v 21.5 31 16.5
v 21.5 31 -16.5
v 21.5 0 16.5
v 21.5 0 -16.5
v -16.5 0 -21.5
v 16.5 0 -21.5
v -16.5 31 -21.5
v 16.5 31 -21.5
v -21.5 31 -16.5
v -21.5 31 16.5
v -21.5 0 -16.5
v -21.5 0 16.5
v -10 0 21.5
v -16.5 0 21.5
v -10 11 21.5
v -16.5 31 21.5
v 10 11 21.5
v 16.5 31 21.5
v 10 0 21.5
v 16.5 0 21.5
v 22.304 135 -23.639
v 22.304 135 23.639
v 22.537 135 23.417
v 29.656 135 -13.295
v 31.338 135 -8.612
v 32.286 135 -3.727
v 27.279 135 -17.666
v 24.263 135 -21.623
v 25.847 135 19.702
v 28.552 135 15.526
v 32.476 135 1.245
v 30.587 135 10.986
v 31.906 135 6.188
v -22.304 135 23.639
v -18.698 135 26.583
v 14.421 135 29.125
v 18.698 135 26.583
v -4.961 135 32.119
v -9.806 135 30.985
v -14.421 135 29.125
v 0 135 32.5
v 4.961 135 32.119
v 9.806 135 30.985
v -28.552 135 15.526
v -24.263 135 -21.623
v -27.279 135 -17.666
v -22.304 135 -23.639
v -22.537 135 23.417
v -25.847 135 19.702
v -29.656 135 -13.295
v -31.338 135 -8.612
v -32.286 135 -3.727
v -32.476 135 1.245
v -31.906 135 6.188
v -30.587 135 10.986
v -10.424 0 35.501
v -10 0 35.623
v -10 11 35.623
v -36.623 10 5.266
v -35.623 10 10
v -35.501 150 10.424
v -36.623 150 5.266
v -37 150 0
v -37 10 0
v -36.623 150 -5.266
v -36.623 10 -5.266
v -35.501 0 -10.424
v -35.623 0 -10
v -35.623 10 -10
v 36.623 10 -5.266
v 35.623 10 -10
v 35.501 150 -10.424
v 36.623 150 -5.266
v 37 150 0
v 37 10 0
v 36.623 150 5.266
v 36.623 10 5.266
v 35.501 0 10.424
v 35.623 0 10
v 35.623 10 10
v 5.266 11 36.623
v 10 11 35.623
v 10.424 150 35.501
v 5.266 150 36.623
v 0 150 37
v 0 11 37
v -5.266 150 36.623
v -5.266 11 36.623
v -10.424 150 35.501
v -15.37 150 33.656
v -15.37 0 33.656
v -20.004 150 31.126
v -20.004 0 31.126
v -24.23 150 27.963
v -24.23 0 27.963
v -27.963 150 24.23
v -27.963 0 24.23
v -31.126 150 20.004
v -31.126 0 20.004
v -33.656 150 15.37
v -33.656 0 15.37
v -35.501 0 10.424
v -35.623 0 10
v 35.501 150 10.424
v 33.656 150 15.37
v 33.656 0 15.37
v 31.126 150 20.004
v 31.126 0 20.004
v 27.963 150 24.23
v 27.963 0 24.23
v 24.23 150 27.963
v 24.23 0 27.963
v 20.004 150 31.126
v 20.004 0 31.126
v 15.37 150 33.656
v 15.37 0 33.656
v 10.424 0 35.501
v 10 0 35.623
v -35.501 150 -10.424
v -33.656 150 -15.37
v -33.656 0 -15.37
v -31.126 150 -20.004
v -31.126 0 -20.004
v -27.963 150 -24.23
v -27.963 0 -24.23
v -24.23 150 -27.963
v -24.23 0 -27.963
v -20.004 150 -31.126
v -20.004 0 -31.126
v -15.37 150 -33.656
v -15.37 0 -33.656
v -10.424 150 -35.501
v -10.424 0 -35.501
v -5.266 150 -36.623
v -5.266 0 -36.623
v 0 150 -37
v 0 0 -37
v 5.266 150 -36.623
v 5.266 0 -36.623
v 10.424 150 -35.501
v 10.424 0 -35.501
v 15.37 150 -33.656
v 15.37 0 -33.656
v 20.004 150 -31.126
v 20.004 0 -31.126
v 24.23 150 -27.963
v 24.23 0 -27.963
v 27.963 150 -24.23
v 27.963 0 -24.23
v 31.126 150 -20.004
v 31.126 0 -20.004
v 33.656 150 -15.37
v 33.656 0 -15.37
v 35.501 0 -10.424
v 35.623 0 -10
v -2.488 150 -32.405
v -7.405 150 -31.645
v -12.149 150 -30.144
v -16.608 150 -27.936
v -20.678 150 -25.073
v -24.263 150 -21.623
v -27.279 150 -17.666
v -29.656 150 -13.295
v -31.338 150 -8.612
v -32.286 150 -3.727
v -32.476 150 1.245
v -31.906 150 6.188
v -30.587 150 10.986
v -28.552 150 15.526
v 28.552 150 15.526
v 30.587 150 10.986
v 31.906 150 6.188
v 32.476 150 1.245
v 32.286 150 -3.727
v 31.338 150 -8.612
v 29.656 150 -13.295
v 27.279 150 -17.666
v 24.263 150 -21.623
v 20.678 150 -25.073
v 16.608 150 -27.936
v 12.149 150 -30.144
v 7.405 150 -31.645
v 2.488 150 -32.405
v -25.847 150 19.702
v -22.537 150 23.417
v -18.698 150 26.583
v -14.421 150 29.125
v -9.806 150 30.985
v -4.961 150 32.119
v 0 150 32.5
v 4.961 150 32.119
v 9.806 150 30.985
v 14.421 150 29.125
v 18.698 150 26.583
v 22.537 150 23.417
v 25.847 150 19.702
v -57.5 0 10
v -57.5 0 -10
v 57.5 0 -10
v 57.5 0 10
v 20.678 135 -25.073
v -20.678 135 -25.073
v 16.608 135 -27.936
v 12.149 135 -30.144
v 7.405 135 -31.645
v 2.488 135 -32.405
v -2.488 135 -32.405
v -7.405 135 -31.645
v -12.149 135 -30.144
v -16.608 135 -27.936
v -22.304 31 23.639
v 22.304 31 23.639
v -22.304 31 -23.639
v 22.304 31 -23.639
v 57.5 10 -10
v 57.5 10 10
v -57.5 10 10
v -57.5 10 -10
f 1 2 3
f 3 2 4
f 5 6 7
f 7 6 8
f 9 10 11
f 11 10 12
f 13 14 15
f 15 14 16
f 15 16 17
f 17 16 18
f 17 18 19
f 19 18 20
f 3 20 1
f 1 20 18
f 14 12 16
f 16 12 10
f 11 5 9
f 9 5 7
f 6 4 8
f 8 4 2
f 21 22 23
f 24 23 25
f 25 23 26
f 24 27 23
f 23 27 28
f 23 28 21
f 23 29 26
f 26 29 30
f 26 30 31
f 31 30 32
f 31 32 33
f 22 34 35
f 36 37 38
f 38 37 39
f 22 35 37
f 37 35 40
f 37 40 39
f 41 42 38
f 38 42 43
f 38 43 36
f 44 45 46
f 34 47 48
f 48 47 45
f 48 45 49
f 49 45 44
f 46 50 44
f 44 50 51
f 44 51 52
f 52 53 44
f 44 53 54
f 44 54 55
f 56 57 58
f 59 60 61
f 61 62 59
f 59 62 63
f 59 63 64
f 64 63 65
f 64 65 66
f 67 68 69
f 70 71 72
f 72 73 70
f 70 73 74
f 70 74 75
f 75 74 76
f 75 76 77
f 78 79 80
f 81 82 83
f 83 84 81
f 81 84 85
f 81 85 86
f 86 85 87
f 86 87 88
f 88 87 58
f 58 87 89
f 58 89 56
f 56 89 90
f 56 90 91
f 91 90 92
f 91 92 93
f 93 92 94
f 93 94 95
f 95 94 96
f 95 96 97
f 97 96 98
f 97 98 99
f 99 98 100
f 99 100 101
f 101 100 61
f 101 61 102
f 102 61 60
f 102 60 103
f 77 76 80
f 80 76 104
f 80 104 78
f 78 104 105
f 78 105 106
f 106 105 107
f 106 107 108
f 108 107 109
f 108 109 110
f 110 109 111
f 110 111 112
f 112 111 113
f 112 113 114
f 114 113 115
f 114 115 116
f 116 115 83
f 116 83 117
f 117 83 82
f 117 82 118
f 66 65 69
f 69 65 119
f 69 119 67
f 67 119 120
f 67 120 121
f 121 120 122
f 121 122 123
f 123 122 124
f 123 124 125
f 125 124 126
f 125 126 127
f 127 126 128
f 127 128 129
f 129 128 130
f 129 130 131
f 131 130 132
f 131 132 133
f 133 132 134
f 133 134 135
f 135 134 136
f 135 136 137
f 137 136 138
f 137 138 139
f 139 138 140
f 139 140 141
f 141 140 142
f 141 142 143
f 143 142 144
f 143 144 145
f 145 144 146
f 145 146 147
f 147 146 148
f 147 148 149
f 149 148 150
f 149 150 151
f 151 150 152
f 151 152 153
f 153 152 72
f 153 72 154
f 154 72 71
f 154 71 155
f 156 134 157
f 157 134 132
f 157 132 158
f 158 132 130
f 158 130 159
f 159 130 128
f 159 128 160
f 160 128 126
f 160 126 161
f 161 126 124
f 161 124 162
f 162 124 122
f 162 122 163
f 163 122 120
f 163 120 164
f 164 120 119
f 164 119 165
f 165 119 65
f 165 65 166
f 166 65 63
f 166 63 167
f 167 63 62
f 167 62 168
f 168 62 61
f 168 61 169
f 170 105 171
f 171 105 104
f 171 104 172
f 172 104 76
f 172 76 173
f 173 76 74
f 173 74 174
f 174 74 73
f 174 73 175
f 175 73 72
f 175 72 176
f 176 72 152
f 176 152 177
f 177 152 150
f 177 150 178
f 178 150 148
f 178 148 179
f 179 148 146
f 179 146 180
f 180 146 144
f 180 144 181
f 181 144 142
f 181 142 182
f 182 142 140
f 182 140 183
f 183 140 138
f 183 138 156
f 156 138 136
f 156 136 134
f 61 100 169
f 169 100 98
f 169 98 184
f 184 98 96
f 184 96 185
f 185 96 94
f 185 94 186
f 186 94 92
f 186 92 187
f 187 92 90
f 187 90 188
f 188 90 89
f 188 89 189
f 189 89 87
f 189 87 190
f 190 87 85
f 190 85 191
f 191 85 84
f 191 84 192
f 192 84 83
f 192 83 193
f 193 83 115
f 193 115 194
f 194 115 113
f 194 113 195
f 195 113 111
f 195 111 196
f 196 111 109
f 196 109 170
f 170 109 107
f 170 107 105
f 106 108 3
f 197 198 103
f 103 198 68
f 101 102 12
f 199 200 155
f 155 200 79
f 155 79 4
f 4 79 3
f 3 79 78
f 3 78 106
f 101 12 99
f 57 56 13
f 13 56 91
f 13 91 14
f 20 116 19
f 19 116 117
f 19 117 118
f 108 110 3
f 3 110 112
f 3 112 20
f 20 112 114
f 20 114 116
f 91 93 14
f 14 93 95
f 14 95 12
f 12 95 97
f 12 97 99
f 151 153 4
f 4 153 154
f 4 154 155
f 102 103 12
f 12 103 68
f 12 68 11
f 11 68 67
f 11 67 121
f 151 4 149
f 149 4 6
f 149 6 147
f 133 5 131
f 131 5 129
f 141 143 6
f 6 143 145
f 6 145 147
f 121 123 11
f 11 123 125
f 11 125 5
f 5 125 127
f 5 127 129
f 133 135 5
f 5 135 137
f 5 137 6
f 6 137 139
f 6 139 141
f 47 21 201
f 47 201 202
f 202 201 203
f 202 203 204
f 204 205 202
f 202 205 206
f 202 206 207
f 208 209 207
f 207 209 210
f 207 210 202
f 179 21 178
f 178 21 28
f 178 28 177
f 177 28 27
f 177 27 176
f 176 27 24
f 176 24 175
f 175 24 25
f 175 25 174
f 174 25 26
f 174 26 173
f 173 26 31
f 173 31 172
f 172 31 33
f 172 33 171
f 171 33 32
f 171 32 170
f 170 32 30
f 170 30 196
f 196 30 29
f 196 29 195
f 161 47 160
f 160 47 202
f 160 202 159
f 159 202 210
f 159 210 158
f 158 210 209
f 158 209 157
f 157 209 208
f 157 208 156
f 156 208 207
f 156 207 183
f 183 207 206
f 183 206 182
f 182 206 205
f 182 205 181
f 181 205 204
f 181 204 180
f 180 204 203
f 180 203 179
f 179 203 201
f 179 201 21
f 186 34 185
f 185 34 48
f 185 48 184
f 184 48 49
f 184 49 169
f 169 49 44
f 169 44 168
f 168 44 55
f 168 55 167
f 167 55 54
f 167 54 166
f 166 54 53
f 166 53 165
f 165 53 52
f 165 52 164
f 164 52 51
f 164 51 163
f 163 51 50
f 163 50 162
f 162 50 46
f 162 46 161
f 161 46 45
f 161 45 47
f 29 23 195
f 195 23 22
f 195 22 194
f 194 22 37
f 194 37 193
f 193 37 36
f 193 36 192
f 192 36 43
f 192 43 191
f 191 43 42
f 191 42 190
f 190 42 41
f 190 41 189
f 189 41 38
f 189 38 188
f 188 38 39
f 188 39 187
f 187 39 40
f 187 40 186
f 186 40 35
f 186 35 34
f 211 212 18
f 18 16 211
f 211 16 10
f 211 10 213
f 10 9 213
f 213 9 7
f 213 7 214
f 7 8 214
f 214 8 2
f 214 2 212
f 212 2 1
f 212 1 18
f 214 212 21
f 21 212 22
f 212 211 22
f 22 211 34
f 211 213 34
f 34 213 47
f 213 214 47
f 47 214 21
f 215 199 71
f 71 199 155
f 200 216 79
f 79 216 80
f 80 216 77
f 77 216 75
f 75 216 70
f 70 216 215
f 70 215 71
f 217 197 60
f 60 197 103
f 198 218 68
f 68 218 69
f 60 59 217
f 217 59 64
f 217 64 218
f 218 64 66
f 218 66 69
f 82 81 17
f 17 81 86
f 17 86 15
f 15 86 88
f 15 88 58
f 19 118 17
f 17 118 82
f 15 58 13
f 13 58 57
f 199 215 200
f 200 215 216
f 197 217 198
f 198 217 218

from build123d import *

# Parameters (mm, degrees)
SKETCH1_R           = 37
BOSS_EXTRUDE1_DEPTH = 150
SKETCH2_W           = 23
SKETCH2_H           = 23
CUT_EXTRUDE1_DEPTH  = 150
SKETCH3_W           = 43
SKETCH3_H           = 43
CUT_EXTRUDE2_DEPTH  = 36
CHAMFER1_SIZE       = 5
SKETCH5_R           = 32.5
CUT_EXTRUDE3_DEPTH  = 15
SKETCH11_W          = 44.607289856
SKETCH11_H          = 47.277792796
CUT_EXTRUDE7_DEPTH  = 104
SKETCH12_W          = 26
SKETCH12_H          = 20
BOSS_EXTRUDE2_DEPTH = 10
SKETCH13_W          = 20
SKETCH13_H          = 31
CUT_EXTRUDE8_DEPTH  = 11
SKETCH14_W          = 20
SKETCH14_H          = 10
BOSS_EXTRUDE3_DEPTH = 10
SKETCH15_W          = 20
SKETCH15_H          = 10
BOSS_EXTRUDE4_DEPTH = 10


with BuildPart() as part:
    # Sketch1 → Boss-Extrude1 (new body)
    with BuildSketch(Plane(origin=(0, 0, 0), x_dir=(1, 0, 0), z_dir=(0, 1, 0))):
        with Locations(Location((0, 0, 0), (0, 0, 270))):
            Circle(SKETCH1_R)
    extrude(amount=BOSS_EXTRUDE1_DEPTH)

    # Sketch2 → Cut-Extrude1 (cut)
    with BuildSketch(Plane(origin=(0, 150, 0), x_dir=(1, 0, 0), z_dir=(0, 1, 0))):
        Rectangle(SKETCH2_W, SKETCH2_H)
    extrude(amount=-CUT_EXTRUDE1_DEPTH, mode=Mode.SUBTRACT)

    # Sketch3 → Cut-Extrude2 (cut)
    with BuildSketch(Plane.XZ):
        Rectangle(SKETCH3_W, SKETCH3_H)
    extrude(amount=-CUT_EXTRUDE2_DEPTH, mode=Mode.SUBTRACT)

    # Chamfer1
    chamfer1_edges = [part.edges().sort_by_distance(p)[0] for p in [
        (21.5, 18, 21.5),
        (21.5, 18, -21.5),
        (-21.5, 18, -21.5),
        (-21.5, 18, 21.5),
    ]]
    chamfer(chamfer1_edges, length=CHAMFER1_SIZE)

    # Sketch5 → Cut-Extrude3 (cut)
    with BuildSketch(Plane(origin=(0, 150, 0), x_dir=(1, 0, 0), z_dir=(0, 1, 0))):
        with Locations(Location((0, 0, 0), (0, 0, 270))):
            Circle(SKETCH5_R)
    extrude(amount=-CUT_EXTRUDE3_DEPTH, mode=Mode.SUBTRACT)

    # Sketch11 → Cut-Extrude7 (cut)
    with BuildSketch(Plane(origin=(0, 135, 0), x_dir=(1, 0, 0), z_dir=(0, 1, 0))):
        Rectangle(SKETCH11_W, SKETCH11_H)
    extrude(amount=-CUT_EXTRUDE7_DEPTH, mode=Mode.SUBTRACT)

    # Sketch12 → Boss-Extrude2 (add)
    with BuildSketch(Plane.XZ):
        with Locations((-34.5, 0)):
            Rectangle(SKETCH12_W, SKETCH12_H)
        with Locations((34.5, 0)):
            Rectangle(SKETCH12_W, SKETCH12_H)
    extrude(amount=-BOSS_EXTRUDE2_DEPTH)

    # Sketch13 → Cut-Extrude8 (cut)
    with BuildSketch(Plane.XZ):
        with Locations((0, 37)):
            Rectangle(SKETCH13_W, SKETCH13_H)
    extrude(amount=-CUT_EXTRUDE8_DEPTH, mode=Mode.SUBTRACT)

    # Sketch14 → Boss-Extrude3 (add)
    with BuildSketch(Plane(origin=(47.5, 0, 0), x_dir=(0, 0, -1), z_dir=(1, 0, 0))):
        with Locations((0, 5)):
            Rectangle(SKETCH14_W, SKETCH14_H)
    extrude(amount=BOSS_EXTRUDE3_DEPTH)

    # Sketch15 → Boss-Extrude4 (add)
    with BuildSketch(Plane.ZY.offset(47.5)):
        with Locations((0, 5)):
            Rectangle(SKETCH15_W, SKETCH15_H)
    extrude(amount=BOSS_EXTRUDE4_DEPTH)


solid = part.part
